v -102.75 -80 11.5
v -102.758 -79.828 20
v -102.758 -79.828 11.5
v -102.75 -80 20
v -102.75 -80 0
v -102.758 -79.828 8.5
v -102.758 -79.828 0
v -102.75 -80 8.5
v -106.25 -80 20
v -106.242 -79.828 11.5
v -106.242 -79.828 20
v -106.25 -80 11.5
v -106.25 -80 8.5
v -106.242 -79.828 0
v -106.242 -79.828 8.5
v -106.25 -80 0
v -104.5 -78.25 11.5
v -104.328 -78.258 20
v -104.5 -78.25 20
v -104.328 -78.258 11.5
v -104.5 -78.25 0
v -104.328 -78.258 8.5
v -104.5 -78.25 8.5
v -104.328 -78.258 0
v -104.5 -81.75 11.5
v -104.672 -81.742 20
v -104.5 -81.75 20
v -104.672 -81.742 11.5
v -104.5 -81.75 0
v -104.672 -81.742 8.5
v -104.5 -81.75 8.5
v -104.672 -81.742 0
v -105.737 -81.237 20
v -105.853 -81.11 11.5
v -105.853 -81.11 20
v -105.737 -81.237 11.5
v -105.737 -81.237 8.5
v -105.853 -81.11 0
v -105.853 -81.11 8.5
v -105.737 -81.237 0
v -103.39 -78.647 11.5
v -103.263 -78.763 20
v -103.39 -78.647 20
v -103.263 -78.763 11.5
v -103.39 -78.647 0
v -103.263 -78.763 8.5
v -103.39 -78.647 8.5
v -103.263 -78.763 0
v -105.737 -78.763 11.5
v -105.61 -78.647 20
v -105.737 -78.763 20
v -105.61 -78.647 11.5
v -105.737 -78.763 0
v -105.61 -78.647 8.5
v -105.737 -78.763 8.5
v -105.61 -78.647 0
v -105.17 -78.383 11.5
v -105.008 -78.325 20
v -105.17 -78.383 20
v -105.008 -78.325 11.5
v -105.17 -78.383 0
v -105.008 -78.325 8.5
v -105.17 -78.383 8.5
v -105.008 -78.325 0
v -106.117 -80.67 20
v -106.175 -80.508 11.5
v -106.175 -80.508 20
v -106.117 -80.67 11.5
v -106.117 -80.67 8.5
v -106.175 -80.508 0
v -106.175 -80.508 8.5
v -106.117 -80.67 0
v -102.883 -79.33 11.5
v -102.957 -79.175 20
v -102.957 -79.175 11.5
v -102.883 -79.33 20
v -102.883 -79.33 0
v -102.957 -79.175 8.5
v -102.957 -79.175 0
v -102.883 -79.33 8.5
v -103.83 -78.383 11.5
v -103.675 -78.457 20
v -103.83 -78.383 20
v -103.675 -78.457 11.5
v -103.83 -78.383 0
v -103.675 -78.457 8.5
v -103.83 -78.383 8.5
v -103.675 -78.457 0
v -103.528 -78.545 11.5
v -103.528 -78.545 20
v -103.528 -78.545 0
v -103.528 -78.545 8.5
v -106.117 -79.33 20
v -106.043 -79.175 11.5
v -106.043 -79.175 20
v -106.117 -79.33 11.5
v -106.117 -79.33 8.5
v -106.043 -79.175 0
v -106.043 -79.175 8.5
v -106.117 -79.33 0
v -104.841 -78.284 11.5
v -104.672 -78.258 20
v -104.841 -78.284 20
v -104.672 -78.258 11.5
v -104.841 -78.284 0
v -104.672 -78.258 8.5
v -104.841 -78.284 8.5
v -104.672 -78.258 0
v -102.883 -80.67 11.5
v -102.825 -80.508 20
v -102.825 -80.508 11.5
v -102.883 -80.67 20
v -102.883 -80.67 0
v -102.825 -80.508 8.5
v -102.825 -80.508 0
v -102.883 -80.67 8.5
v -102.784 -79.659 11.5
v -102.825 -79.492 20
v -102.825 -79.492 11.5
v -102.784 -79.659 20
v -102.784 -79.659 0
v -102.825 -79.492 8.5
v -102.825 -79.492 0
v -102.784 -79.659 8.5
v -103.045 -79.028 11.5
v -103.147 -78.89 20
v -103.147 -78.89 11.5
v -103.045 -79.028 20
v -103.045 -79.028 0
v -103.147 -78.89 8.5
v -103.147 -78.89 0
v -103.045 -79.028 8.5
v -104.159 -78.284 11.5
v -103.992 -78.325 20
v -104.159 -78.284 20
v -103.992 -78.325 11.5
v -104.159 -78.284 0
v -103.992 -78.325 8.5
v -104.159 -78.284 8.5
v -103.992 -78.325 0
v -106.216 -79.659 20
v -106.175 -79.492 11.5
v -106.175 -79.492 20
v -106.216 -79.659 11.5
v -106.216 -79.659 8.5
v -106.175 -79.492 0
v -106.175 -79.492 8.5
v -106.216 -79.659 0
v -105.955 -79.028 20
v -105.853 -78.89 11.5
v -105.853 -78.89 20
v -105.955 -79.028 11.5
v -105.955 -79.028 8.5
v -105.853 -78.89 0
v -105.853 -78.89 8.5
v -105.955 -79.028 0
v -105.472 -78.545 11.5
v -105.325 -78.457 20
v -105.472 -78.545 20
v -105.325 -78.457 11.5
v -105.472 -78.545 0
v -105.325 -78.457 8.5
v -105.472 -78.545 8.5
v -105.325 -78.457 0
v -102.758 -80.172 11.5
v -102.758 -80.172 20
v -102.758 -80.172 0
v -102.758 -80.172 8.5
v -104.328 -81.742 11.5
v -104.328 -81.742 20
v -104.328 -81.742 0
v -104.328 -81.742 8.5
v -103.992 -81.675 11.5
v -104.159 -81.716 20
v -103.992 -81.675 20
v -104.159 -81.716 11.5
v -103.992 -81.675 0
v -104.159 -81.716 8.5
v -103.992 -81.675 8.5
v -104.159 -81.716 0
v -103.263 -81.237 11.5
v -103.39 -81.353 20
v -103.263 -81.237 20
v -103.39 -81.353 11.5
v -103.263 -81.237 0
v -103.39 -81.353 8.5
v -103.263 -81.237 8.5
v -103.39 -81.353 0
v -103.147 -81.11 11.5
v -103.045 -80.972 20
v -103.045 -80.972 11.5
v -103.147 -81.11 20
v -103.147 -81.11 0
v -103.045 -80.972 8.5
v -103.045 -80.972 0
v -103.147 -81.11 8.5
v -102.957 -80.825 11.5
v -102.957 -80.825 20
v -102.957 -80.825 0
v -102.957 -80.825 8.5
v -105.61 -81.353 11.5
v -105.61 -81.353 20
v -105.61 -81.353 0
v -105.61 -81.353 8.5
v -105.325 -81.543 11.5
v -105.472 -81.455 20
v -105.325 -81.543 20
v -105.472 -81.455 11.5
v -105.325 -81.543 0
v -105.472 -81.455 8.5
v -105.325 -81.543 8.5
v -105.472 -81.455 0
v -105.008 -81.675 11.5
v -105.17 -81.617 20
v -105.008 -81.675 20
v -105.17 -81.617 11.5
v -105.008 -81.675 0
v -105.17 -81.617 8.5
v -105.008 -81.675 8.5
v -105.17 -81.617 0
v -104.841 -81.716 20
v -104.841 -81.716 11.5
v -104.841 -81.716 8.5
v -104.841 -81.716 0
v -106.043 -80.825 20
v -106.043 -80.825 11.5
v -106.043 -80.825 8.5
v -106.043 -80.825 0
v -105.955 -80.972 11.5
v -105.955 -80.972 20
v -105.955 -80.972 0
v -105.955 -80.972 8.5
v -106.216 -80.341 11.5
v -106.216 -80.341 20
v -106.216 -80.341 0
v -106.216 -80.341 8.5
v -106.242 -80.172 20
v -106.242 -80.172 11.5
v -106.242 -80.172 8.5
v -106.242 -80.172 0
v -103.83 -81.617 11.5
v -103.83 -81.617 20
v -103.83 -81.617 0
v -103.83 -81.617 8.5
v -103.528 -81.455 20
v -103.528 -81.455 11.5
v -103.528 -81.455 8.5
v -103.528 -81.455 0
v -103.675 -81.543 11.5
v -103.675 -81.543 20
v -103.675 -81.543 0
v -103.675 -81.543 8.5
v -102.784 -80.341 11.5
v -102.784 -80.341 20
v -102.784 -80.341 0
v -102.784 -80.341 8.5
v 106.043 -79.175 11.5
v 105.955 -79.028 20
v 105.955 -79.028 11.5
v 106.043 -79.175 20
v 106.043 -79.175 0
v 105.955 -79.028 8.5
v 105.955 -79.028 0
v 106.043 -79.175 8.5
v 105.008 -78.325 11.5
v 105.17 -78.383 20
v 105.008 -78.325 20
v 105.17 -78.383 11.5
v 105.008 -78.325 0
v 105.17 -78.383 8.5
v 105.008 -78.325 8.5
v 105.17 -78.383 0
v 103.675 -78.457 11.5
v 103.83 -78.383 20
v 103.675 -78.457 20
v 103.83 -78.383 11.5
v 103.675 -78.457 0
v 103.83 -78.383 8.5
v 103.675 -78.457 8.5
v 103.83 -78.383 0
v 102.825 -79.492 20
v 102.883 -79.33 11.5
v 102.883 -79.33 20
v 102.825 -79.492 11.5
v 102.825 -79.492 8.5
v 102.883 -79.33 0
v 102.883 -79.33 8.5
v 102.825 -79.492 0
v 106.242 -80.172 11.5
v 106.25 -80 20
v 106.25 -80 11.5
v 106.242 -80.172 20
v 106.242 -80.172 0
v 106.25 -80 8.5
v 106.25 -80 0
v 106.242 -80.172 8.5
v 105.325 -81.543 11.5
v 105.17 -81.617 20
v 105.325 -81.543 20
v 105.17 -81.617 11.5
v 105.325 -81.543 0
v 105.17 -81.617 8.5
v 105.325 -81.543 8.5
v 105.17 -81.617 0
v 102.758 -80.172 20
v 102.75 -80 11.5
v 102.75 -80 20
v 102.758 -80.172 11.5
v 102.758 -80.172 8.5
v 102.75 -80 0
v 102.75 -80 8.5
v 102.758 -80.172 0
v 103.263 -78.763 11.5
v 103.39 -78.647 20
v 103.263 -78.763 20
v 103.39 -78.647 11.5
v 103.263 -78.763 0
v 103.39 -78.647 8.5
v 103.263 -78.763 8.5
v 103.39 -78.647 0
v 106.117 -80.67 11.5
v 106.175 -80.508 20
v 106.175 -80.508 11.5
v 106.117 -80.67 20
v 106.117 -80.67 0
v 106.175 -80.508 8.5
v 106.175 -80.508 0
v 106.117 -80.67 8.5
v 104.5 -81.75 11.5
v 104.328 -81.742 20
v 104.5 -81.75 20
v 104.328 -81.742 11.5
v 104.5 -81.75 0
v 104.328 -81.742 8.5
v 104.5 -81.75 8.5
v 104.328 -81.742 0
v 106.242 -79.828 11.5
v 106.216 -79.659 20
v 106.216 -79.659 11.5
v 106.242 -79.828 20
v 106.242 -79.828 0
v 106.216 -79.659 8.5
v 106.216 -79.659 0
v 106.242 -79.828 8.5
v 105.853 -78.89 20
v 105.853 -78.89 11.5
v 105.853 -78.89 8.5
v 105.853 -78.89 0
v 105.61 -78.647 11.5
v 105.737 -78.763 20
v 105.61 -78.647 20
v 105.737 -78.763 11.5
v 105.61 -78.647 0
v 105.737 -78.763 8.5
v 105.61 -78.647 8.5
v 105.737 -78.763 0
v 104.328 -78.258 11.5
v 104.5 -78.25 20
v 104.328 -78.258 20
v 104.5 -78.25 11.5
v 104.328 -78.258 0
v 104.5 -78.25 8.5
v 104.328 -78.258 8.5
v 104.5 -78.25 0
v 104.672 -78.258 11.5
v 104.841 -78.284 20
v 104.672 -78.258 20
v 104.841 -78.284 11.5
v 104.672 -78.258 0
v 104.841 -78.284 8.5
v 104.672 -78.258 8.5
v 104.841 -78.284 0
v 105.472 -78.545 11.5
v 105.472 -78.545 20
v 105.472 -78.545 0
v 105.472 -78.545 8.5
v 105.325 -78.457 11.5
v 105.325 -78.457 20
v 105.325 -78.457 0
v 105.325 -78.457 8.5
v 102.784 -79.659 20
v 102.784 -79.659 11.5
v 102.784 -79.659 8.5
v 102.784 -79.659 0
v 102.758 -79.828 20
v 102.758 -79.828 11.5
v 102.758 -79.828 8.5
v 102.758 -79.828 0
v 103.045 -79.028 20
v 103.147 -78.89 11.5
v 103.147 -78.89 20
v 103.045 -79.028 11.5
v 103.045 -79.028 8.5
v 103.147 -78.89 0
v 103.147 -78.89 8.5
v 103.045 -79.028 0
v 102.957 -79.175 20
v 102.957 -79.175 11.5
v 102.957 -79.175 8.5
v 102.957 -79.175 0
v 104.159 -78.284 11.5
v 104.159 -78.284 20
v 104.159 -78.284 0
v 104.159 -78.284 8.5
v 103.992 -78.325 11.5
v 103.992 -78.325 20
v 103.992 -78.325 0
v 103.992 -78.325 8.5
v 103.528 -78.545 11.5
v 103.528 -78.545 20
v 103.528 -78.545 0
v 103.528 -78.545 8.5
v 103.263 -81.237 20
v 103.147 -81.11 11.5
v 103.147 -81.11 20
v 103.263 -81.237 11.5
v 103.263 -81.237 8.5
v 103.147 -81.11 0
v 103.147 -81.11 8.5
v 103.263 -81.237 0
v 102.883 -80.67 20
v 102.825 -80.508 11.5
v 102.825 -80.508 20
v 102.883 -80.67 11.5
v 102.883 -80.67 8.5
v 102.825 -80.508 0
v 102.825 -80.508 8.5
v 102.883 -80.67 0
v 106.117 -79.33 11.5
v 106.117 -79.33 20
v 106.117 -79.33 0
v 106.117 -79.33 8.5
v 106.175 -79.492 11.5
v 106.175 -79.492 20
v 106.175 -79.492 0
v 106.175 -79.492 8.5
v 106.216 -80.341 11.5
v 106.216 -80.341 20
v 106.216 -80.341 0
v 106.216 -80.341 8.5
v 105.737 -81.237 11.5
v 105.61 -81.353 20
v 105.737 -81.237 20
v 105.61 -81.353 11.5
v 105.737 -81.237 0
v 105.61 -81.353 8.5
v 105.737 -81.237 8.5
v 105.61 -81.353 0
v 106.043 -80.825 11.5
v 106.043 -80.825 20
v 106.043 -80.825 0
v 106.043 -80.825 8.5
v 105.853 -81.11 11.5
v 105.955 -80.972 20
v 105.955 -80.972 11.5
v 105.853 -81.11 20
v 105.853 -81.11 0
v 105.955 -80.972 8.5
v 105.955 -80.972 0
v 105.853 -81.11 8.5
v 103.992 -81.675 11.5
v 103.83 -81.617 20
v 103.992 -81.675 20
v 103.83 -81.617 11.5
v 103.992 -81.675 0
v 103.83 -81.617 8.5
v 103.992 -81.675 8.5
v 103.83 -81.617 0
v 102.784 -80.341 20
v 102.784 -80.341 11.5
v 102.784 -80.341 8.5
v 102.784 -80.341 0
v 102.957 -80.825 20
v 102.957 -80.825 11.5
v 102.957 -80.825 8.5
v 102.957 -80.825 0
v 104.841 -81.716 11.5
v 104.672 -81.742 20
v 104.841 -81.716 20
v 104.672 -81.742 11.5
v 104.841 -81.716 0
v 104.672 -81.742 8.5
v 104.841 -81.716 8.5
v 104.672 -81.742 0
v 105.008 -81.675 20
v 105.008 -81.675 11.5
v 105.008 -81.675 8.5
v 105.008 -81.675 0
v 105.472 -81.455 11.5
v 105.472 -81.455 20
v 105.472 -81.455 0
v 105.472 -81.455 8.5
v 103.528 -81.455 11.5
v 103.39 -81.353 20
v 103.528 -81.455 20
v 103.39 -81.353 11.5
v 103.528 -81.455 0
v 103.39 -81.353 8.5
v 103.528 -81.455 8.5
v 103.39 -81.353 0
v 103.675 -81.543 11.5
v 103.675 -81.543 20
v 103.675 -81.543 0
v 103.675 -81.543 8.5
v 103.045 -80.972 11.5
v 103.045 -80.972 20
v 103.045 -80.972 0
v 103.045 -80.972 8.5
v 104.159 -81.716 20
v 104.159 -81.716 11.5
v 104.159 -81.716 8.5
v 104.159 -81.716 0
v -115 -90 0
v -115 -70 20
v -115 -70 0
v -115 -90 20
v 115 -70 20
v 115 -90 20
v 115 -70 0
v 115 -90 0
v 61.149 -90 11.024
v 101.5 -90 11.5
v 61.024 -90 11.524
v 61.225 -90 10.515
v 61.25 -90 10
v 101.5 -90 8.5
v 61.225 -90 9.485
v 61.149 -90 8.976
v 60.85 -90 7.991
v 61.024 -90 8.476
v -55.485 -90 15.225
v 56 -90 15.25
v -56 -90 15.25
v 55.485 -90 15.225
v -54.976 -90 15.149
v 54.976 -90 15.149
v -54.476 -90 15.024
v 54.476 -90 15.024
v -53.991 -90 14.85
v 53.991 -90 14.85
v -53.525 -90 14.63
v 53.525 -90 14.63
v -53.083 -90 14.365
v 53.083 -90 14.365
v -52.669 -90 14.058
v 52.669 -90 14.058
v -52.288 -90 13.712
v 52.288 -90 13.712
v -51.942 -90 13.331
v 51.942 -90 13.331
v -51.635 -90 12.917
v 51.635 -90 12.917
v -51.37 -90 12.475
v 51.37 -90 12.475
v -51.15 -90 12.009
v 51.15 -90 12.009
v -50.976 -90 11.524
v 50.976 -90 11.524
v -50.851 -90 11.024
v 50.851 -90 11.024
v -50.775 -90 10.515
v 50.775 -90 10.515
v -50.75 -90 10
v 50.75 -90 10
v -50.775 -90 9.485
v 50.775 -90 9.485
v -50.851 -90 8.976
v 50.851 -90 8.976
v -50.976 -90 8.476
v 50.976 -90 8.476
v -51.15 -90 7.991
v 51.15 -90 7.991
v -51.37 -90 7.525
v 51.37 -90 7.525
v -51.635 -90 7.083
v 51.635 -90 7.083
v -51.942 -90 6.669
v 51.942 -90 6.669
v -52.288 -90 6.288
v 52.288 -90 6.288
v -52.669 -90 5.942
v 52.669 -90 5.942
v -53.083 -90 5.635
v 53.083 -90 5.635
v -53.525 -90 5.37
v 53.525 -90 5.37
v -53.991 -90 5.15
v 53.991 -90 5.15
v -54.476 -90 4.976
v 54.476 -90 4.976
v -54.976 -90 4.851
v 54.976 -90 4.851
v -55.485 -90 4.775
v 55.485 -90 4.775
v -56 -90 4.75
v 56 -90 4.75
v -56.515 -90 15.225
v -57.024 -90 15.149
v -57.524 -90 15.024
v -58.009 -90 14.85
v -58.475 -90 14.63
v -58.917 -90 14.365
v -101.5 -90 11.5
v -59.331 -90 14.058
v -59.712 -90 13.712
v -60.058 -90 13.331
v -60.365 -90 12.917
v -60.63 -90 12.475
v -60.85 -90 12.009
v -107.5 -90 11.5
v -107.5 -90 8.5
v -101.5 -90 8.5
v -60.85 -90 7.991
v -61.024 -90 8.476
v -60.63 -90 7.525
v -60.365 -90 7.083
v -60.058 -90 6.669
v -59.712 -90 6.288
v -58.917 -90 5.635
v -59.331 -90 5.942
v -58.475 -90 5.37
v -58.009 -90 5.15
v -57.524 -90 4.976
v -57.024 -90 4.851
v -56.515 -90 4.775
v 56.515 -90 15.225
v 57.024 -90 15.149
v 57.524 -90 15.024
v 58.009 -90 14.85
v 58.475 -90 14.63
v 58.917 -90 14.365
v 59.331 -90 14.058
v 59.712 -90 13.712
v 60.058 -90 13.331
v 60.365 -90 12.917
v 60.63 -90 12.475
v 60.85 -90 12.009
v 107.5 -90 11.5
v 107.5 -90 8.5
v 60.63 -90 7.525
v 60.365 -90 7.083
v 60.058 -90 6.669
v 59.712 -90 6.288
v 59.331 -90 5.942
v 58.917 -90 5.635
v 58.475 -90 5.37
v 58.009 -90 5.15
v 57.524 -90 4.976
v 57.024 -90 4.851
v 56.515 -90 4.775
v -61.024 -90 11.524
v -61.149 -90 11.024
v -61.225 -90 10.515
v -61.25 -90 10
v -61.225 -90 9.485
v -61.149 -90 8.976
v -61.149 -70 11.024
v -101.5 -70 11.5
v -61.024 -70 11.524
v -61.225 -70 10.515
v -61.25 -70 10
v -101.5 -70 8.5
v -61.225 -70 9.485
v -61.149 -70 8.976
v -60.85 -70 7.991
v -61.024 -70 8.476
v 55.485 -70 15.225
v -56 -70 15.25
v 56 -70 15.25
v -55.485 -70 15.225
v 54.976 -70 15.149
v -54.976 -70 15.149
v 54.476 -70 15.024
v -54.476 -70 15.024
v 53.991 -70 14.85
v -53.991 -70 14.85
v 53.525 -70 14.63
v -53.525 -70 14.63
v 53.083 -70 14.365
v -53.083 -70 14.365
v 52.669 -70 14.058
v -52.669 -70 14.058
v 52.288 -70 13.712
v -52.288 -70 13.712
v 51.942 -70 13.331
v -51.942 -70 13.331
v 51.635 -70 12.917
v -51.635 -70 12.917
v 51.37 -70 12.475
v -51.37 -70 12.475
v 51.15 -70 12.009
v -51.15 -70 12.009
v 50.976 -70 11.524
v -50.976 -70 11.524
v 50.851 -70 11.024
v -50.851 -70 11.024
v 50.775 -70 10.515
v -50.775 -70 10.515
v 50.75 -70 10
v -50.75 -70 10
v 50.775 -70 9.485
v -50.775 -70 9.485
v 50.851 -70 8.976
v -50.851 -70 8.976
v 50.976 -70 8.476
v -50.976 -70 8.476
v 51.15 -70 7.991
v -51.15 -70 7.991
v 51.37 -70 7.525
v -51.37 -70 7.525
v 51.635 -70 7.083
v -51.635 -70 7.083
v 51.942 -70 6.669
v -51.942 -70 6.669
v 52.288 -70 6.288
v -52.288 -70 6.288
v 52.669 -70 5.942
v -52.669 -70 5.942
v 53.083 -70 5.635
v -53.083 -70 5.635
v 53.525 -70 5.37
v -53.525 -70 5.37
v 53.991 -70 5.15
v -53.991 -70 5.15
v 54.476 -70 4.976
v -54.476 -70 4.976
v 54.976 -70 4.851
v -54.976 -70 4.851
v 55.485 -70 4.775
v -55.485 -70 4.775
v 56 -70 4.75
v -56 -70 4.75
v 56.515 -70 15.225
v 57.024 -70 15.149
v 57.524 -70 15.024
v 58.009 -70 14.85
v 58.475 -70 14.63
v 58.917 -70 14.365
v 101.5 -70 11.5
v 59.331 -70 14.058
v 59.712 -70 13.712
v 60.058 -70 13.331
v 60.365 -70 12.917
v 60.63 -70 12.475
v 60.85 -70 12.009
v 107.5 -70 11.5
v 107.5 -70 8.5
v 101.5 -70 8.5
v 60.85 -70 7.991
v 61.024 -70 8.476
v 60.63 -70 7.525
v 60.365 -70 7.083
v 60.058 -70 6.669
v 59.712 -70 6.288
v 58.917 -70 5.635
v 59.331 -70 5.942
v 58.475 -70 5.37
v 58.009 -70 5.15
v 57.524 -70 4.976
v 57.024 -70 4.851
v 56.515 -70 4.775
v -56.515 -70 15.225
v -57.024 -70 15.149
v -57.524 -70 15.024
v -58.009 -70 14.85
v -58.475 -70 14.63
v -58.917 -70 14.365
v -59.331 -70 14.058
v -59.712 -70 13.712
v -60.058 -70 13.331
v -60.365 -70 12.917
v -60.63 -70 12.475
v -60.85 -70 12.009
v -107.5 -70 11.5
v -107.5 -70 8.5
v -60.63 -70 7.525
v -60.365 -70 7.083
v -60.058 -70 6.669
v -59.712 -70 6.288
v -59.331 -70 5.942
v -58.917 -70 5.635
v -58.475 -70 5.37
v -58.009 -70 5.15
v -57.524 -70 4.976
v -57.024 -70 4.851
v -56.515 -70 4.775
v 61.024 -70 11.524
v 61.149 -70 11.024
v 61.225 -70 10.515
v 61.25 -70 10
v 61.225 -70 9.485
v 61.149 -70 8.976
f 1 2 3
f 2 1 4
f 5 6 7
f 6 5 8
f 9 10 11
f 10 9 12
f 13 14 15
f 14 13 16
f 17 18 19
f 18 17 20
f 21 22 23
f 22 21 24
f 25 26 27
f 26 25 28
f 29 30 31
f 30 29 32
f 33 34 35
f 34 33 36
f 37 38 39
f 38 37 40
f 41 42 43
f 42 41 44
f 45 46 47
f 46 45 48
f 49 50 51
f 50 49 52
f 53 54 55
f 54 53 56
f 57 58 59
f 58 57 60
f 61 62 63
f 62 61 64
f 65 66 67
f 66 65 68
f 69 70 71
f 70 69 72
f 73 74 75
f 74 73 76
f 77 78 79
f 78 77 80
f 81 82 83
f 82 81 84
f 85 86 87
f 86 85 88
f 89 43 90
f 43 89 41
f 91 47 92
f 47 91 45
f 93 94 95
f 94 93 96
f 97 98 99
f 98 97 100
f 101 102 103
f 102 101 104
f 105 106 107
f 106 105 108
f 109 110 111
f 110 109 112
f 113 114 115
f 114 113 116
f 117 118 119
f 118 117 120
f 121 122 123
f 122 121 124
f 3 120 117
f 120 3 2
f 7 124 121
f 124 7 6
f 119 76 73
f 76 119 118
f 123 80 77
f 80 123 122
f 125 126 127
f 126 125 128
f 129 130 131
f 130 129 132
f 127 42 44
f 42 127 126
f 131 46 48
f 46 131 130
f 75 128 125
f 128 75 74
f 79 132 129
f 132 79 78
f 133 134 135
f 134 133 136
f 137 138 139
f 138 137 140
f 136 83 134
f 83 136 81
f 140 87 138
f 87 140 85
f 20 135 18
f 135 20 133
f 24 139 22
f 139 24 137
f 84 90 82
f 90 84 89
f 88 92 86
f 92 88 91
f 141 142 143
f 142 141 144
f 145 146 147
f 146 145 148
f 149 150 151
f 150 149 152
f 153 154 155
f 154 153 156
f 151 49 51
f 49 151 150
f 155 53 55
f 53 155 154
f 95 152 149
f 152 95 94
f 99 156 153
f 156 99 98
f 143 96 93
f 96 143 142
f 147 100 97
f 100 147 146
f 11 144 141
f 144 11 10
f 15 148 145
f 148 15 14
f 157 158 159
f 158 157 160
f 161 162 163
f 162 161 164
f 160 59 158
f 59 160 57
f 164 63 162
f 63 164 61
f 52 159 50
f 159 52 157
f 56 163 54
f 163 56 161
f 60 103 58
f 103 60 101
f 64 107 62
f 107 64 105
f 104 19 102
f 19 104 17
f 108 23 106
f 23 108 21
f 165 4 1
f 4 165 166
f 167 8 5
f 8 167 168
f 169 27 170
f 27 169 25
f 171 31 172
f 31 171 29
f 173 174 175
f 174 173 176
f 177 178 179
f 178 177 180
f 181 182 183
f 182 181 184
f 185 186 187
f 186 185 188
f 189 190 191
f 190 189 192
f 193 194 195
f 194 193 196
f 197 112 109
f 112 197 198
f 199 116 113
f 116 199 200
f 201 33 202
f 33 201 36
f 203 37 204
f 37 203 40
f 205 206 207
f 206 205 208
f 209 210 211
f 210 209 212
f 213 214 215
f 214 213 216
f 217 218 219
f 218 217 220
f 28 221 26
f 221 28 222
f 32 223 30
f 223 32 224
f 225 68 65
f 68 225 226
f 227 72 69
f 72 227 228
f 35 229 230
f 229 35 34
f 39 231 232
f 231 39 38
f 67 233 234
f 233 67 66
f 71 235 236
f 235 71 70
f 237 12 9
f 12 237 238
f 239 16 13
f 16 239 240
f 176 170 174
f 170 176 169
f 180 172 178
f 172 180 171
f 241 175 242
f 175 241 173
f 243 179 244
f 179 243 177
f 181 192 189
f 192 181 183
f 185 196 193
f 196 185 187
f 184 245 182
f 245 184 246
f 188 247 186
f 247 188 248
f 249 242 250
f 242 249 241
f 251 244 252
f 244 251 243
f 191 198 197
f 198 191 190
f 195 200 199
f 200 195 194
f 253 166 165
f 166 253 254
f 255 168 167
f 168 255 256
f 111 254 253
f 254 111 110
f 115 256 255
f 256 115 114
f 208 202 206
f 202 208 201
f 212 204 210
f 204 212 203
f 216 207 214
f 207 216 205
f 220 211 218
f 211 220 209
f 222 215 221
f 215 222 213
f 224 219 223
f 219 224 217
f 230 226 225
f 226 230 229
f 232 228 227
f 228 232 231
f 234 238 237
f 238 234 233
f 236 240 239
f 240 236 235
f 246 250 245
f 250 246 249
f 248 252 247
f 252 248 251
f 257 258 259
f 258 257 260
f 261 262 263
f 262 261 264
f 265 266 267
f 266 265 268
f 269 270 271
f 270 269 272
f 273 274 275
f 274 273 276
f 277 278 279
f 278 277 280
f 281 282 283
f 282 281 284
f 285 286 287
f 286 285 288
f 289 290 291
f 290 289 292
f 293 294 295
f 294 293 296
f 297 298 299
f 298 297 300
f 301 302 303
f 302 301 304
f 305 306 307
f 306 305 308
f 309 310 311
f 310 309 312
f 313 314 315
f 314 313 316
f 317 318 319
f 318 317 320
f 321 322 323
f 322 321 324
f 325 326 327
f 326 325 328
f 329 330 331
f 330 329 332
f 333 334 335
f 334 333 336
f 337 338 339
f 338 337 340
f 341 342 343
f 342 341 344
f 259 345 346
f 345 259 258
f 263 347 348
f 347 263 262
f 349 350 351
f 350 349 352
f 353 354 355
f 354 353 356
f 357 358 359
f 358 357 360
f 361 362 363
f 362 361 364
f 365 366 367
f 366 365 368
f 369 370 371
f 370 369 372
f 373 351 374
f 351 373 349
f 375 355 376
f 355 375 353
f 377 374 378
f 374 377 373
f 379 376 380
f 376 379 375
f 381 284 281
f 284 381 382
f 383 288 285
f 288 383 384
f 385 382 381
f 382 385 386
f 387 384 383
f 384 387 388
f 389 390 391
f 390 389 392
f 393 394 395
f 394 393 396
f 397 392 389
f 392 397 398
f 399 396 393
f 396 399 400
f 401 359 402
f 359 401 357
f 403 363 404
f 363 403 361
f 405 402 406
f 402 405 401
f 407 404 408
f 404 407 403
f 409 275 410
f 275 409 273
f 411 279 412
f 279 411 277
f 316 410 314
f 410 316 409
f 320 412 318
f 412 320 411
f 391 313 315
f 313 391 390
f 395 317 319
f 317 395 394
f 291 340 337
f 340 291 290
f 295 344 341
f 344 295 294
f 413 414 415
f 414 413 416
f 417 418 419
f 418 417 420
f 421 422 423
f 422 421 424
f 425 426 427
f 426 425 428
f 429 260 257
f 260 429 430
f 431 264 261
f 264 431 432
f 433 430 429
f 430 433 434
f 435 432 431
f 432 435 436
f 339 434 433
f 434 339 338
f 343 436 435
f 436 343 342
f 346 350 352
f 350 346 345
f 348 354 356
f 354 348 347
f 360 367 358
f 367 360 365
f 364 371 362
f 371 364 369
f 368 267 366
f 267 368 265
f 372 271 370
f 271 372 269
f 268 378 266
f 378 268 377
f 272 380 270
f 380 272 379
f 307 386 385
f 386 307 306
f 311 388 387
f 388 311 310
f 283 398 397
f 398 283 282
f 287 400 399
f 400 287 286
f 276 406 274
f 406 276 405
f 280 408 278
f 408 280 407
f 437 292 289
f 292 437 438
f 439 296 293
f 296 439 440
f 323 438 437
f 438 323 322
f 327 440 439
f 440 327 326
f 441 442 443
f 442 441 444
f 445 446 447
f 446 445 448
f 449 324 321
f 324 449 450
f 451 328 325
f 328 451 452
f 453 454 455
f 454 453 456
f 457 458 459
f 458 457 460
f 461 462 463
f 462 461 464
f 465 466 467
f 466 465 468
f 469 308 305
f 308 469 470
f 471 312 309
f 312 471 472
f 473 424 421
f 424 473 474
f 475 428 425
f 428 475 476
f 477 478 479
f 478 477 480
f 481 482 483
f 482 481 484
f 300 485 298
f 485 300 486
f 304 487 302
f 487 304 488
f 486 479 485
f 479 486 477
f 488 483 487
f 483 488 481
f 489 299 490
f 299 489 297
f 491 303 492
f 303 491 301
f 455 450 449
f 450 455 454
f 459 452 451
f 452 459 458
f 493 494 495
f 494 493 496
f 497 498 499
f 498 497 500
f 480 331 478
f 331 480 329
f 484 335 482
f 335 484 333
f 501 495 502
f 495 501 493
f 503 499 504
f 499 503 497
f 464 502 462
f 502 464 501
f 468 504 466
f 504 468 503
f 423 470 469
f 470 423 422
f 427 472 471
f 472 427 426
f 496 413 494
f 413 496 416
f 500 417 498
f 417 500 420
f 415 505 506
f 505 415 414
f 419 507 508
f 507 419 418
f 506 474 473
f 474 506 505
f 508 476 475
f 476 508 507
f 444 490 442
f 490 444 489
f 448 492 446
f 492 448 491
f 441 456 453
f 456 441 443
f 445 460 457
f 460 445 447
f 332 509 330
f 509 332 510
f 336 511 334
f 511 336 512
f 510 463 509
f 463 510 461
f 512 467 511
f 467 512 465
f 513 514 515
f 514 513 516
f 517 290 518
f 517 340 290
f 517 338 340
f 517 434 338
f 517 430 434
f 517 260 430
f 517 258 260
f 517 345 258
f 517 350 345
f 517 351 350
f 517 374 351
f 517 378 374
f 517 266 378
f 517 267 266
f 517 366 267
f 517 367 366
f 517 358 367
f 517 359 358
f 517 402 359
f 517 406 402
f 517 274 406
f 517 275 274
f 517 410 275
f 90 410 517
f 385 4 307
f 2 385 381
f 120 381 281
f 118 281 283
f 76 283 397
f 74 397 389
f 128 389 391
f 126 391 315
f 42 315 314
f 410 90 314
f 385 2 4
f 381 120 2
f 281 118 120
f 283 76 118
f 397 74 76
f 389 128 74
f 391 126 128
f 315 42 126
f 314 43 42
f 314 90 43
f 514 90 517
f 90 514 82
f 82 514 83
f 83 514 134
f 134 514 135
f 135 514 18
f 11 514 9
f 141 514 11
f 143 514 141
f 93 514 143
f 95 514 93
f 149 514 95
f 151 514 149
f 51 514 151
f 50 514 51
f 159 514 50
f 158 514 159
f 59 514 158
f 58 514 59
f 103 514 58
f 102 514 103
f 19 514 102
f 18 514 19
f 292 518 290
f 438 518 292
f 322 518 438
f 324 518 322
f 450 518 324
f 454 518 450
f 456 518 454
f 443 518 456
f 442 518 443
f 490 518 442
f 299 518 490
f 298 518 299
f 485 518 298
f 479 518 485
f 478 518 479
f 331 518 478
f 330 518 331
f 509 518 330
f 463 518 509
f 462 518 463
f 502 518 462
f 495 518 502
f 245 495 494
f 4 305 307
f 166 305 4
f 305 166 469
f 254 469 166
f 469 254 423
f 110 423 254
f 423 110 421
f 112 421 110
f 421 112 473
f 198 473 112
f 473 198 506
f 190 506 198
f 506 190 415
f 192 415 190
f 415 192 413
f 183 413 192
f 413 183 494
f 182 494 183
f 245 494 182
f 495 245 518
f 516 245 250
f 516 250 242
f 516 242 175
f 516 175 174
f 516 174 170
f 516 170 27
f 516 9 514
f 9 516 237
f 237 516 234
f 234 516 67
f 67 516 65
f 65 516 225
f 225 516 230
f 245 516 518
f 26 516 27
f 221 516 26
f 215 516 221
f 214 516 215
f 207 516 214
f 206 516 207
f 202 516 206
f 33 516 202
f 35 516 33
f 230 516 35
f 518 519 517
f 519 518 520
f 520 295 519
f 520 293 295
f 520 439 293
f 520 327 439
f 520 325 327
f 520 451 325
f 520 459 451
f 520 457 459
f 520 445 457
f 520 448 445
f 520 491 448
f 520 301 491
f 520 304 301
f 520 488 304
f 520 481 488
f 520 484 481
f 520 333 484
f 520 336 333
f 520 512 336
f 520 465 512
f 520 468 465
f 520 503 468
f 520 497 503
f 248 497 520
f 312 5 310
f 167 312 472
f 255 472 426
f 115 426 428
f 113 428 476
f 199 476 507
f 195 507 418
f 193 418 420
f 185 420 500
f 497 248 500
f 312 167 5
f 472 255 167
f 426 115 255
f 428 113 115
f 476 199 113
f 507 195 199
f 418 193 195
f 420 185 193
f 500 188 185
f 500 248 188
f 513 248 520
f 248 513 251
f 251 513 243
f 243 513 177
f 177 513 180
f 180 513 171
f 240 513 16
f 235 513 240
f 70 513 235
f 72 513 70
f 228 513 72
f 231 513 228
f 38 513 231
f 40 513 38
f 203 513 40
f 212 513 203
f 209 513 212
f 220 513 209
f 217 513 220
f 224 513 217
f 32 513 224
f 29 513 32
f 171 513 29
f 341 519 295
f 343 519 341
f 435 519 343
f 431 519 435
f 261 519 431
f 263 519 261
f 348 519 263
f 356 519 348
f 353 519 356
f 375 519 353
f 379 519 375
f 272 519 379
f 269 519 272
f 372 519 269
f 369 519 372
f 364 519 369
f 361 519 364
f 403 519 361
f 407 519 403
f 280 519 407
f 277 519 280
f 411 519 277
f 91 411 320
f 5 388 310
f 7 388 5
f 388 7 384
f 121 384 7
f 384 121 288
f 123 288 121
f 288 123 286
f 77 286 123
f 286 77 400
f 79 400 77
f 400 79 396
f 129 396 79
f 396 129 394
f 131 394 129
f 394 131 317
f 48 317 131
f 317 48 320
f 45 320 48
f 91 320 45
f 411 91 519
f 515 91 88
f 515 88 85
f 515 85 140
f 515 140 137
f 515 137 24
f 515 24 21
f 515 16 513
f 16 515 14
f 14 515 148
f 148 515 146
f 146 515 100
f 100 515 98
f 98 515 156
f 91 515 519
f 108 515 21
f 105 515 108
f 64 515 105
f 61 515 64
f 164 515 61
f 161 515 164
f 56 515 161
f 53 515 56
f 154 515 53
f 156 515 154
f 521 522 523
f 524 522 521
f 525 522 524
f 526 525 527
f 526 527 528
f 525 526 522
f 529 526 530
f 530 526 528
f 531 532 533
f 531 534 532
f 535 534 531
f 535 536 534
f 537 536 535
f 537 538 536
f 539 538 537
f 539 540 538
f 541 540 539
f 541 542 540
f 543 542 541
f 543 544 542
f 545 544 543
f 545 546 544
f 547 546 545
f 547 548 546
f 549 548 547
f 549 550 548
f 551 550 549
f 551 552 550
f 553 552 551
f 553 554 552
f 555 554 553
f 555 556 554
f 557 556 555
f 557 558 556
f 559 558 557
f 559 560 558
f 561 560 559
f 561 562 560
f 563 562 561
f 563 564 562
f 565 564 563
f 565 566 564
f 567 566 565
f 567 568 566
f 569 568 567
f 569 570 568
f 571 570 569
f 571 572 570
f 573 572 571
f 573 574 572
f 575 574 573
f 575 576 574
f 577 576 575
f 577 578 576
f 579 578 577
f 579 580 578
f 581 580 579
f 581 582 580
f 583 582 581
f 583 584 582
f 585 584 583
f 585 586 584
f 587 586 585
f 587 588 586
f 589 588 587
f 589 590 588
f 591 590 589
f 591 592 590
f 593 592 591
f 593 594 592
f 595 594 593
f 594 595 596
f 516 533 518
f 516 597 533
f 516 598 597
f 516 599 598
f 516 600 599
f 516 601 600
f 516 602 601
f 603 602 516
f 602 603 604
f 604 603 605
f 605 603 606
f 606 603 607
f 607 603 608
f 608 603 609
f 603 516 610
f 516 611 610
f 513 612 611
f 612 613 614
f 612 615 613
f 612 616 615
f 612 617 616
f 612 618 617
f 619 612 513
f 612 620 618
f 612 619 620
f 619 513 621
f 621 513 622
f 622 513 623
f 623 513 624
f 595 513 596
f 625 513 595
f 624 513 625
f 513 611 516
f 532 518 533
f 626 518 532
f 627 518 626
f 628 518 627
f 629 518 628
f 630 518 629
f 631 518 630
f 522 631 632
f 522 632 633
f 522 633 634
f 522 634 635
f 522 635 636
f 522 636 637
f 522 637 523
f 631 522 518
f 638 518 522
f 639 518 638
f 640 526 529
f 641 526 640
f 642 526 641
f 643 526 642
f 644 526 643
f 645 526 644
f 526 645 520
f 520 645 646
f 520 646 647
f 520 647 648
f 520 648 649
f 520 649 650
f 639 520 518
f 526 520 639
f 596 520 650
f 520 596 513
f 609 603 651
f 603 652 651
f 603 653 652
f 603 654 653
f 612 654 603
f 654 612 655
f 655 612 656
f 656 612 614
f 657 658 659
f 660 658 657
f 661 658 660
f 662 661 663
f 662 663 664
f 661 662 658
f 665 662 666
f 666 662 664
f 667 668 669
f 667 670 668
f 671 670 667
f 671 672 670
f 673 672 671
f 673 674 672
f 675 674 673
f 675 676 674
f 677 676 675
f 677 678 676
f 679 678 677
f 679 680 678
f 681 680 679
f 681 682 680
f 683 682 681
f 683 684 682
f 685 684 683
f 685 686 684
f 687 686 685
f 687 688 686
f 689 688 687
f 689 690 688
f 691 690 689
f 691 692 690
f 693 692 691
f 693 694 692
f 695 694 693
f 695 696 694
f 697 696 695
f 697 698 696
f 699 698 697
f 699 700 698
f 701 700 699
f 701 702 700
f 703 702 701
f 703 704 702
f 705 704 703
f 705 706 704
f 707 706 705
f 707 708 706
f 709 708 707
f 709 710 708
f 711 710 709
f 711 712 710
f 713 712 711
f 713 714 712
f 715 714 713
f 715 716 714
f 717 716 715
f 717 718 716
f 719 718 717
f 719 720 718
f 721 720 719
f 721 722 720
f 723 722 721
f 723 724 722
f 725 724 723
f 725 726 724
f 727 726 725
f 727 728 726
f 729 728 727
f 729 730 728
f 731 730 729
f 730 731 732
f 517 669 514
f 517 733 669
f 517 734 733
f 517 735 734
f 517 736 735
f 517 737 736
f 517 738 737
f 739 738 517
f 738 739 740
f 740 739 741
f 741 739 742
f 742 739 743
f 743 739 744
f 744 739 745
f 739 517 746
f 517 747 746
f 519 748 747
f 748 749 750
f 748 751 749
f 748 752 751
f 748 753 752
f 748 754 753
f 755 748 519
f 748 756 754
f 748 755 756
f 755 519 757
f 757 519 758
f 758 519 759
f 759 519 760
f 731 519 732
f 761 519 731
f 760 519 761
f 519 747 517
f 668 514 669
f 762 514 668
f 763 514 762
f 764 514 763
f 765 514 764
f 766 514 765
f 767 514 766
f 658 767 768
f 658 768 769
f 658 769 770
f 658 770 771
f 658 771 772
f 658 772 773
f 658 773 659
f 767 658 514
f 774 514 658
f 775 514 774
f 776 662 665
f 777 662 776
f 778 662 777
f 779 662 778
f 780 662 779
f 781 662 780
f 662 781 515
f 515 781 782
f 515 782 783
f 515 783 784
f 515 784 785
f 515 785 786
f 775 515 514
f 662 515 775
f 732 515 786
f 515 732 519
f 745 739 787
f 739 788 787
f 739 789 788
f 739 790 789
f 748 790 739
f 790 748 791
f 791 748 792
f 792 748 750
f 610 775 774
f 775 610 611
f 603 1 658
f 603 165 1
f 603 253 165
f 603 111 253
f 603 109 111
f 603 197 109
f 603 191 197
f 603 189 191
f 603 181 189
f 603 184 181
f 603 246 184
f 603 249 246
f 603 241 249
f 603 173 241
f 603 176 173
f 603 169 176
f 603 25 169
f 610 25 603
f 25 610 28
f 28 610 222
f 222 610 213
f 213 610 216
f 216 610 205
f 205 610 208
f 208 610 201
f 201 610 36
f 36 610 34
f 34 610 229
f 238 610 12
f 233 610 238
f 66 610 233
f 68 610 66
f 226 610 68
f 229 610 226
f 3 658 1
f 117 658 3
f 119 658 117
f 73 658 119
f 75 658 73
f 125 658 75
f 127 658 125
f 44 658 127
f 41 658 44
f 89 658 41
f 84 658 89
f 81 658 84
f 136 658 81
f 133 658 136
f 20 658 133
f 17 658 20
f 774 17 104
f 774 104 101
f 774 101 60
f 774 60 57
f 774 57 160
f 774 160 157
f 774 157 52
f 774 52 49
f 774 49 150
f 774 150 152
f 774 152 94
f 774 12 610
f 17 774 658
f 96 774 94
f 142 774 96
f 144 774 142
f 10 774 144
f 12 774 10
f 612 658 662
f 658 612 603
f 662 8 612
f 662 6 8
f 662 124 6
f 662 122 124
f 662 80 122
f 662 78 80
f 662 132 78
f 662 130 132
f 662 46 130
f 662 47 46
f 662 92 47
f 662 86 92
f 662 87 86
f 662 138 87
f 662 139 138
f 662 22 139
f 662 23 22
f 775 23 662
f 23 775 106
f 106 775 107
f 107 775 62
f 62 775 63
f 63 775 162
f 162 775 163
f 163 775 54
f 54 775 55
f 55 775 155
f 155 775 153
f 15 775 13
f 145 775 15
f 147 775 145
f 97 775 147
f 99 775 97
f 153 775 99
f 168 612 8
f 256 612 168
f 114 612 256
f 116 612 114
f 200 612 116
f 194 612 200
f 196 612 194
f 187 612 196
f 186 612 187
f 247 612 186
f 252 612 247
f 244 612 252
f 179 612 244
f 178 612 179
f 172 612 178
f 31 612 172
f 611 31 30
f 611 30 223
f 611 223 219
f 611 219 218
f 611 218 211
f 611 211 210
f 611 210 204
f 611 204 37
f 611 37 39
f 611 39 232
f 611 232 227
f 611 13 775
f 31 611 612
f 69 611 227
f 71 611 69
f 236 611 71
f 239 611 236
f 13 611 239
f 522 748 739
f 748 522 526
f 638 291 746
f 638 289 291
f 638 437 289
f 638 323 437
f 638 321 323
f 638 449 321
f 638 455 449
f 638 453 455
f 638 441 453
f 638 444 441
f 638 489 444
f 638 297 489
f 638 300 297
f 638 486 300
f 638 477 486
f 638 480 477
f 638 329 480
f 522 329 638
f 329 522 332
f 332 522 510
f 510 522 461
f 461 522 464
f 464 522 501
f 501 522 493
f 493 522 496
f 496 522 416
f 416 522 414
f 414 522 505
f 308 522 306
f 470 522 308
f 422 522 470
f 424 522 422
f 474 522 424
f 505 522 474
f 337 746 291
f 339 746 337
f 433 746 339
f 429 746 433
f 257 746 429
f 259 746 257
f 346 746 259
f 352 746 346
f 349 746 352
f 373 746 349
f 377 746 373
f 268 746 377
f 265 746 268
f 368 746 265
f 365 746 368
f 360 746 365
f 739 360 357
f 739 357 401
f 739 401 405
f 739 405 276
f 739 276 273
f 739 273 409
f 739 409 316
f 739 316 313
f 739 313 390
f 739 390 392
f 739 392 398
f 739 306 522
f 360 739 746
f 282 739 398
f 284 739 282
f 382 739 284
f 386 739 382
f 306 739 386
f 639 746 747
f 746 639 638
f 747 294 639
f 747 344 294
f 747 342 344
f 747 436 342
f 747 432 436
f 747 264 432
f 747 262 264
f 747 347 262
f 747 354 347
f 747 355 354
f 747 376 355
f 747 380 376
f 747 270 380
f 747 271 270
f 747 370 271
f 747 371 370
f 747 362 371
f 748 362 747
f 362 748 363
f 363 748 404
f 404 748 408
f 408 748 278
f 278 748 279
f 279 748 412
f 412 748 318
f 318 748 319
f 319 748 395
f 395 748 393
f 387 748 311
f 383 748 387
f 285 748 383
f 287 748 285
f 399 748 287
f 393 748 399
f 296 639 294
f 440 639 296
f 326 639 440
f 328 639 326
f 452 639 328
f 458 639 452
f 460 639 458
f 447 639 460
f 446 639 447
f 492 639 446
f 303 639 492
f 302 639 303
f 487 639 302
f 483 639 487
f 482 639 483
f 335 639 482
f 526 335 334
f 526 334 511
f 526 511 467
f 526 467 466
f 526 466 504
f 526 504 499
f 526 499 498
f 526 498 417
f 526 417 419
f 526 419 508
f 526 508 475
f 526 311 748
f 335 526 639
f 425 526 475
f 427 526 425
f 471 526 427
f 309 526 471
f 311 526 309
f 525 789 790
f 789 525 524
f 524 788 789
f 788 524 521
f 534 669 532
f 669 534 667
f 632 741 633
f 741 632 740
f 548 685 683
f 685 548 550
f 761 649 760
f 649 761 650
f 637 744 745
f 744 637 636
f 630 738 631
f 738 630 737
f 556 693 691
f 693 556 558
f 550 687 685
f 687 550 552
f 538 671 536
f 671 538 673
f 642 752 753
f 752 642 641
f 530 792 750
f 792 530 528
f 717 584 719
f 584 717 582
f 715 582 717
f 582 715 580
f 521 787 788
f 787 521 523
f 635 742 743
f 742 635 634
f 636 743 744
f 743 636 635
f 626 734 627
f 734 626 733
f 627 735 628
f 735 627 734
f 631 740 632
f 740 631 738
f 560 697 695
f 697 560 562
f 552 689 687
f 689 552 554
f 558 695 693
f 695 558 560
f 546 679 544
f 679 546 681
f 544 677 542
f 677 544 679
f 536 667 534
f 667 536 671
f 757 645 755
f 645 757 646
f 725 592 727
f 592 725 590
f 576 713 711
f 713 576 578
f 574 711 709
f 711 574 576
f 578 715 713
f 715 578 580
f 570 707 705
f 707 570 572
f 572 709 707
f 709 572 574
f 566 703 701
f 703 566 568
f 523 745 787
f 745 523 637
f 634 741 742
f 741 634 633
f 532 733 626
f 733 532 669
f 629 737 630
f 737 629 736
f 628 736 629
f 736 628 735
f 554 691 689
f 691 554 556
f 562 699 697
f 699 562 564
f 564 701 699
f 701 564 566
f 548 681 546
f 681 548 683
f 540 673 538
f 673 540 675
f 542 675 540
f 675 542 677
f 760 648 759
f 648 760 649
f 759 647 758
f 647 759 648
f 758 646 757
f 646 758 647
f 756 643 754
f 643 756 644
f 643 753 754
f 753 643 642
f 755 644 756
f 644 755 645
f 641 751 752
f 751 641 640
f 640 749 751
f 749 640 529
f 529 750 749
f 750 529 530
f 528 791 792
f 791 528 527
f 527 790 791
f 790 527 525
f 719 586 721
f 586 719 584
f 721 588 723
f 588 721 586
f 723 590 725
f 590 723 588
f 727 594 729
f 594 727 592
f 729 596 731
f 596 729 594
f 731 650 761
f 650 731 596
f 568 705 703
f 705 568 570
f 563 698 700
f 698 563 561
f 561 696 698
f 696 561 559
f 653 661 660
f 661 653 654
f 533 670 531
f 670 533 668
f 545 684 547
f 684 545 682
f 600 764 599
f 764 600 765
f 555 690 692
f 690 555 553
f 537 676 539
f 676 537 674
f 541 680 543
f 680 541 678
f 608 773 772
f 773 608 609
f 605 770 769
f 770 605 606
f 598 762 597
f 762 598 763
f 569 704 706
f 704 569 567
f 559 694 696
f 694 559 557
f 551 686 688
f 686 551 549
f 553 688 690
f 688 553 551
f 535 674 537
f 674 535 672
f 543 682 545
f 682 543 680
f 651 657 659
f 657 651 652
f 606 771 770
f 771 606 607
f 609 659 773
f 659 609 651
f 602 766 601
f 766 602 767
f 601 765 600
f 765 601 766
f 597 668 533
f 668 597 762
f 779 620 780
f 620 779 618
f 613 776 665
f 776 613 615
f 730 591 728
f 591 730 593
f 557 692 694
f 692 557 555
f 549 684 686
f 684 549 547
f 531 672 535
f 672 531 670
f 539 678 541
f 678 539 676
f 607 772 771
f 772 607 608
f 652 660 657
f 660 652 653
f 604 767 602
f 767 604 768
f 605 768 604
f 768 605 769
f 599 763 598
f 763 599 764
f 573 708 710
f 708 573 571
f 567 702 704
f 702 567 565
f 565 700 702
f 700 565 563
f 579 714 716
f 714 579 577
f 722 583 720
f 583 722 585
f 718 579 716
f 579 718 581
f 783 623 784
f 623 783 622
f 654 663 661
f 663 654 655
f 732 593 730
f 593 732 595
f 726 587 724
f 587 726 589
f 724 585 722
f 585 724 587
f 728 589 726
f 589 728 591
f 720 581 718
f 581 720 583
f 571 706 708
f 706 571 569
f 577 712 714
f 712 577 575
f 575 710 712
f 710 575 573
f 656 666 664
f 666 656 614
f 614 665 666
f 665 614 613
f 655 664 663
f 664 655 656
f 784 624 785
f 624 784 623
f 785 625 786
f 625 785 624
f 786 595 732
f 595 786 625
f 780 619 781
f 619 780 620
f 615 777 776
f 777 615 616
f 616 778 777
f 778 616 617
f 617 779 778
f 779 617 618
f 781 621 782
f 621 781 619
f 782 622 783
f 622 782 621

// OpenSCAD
$fn=64;

difference(){
translate([-230/2,-90,0])cube([230,20,20]);
translate([-209/2,-80,10])cube([6,50,3],center=true);
translate([209/2,-80,10])cube([6,50,3],center=true);
translate([0,-80,-20]){
translate([-209/2,0,0])cylinder(r=3.5/2,h=50);
translate([209/2,0,0])cylinder(r=3.5/2,h=50);
}
translate([59-3,-40,10])rotate([90,0,0])cylinder(r=10.5/2,h=80);
translate([-59+3,-40,10])rotate([90,0,0])cylinder(r=10.5/2,h=80);
}
